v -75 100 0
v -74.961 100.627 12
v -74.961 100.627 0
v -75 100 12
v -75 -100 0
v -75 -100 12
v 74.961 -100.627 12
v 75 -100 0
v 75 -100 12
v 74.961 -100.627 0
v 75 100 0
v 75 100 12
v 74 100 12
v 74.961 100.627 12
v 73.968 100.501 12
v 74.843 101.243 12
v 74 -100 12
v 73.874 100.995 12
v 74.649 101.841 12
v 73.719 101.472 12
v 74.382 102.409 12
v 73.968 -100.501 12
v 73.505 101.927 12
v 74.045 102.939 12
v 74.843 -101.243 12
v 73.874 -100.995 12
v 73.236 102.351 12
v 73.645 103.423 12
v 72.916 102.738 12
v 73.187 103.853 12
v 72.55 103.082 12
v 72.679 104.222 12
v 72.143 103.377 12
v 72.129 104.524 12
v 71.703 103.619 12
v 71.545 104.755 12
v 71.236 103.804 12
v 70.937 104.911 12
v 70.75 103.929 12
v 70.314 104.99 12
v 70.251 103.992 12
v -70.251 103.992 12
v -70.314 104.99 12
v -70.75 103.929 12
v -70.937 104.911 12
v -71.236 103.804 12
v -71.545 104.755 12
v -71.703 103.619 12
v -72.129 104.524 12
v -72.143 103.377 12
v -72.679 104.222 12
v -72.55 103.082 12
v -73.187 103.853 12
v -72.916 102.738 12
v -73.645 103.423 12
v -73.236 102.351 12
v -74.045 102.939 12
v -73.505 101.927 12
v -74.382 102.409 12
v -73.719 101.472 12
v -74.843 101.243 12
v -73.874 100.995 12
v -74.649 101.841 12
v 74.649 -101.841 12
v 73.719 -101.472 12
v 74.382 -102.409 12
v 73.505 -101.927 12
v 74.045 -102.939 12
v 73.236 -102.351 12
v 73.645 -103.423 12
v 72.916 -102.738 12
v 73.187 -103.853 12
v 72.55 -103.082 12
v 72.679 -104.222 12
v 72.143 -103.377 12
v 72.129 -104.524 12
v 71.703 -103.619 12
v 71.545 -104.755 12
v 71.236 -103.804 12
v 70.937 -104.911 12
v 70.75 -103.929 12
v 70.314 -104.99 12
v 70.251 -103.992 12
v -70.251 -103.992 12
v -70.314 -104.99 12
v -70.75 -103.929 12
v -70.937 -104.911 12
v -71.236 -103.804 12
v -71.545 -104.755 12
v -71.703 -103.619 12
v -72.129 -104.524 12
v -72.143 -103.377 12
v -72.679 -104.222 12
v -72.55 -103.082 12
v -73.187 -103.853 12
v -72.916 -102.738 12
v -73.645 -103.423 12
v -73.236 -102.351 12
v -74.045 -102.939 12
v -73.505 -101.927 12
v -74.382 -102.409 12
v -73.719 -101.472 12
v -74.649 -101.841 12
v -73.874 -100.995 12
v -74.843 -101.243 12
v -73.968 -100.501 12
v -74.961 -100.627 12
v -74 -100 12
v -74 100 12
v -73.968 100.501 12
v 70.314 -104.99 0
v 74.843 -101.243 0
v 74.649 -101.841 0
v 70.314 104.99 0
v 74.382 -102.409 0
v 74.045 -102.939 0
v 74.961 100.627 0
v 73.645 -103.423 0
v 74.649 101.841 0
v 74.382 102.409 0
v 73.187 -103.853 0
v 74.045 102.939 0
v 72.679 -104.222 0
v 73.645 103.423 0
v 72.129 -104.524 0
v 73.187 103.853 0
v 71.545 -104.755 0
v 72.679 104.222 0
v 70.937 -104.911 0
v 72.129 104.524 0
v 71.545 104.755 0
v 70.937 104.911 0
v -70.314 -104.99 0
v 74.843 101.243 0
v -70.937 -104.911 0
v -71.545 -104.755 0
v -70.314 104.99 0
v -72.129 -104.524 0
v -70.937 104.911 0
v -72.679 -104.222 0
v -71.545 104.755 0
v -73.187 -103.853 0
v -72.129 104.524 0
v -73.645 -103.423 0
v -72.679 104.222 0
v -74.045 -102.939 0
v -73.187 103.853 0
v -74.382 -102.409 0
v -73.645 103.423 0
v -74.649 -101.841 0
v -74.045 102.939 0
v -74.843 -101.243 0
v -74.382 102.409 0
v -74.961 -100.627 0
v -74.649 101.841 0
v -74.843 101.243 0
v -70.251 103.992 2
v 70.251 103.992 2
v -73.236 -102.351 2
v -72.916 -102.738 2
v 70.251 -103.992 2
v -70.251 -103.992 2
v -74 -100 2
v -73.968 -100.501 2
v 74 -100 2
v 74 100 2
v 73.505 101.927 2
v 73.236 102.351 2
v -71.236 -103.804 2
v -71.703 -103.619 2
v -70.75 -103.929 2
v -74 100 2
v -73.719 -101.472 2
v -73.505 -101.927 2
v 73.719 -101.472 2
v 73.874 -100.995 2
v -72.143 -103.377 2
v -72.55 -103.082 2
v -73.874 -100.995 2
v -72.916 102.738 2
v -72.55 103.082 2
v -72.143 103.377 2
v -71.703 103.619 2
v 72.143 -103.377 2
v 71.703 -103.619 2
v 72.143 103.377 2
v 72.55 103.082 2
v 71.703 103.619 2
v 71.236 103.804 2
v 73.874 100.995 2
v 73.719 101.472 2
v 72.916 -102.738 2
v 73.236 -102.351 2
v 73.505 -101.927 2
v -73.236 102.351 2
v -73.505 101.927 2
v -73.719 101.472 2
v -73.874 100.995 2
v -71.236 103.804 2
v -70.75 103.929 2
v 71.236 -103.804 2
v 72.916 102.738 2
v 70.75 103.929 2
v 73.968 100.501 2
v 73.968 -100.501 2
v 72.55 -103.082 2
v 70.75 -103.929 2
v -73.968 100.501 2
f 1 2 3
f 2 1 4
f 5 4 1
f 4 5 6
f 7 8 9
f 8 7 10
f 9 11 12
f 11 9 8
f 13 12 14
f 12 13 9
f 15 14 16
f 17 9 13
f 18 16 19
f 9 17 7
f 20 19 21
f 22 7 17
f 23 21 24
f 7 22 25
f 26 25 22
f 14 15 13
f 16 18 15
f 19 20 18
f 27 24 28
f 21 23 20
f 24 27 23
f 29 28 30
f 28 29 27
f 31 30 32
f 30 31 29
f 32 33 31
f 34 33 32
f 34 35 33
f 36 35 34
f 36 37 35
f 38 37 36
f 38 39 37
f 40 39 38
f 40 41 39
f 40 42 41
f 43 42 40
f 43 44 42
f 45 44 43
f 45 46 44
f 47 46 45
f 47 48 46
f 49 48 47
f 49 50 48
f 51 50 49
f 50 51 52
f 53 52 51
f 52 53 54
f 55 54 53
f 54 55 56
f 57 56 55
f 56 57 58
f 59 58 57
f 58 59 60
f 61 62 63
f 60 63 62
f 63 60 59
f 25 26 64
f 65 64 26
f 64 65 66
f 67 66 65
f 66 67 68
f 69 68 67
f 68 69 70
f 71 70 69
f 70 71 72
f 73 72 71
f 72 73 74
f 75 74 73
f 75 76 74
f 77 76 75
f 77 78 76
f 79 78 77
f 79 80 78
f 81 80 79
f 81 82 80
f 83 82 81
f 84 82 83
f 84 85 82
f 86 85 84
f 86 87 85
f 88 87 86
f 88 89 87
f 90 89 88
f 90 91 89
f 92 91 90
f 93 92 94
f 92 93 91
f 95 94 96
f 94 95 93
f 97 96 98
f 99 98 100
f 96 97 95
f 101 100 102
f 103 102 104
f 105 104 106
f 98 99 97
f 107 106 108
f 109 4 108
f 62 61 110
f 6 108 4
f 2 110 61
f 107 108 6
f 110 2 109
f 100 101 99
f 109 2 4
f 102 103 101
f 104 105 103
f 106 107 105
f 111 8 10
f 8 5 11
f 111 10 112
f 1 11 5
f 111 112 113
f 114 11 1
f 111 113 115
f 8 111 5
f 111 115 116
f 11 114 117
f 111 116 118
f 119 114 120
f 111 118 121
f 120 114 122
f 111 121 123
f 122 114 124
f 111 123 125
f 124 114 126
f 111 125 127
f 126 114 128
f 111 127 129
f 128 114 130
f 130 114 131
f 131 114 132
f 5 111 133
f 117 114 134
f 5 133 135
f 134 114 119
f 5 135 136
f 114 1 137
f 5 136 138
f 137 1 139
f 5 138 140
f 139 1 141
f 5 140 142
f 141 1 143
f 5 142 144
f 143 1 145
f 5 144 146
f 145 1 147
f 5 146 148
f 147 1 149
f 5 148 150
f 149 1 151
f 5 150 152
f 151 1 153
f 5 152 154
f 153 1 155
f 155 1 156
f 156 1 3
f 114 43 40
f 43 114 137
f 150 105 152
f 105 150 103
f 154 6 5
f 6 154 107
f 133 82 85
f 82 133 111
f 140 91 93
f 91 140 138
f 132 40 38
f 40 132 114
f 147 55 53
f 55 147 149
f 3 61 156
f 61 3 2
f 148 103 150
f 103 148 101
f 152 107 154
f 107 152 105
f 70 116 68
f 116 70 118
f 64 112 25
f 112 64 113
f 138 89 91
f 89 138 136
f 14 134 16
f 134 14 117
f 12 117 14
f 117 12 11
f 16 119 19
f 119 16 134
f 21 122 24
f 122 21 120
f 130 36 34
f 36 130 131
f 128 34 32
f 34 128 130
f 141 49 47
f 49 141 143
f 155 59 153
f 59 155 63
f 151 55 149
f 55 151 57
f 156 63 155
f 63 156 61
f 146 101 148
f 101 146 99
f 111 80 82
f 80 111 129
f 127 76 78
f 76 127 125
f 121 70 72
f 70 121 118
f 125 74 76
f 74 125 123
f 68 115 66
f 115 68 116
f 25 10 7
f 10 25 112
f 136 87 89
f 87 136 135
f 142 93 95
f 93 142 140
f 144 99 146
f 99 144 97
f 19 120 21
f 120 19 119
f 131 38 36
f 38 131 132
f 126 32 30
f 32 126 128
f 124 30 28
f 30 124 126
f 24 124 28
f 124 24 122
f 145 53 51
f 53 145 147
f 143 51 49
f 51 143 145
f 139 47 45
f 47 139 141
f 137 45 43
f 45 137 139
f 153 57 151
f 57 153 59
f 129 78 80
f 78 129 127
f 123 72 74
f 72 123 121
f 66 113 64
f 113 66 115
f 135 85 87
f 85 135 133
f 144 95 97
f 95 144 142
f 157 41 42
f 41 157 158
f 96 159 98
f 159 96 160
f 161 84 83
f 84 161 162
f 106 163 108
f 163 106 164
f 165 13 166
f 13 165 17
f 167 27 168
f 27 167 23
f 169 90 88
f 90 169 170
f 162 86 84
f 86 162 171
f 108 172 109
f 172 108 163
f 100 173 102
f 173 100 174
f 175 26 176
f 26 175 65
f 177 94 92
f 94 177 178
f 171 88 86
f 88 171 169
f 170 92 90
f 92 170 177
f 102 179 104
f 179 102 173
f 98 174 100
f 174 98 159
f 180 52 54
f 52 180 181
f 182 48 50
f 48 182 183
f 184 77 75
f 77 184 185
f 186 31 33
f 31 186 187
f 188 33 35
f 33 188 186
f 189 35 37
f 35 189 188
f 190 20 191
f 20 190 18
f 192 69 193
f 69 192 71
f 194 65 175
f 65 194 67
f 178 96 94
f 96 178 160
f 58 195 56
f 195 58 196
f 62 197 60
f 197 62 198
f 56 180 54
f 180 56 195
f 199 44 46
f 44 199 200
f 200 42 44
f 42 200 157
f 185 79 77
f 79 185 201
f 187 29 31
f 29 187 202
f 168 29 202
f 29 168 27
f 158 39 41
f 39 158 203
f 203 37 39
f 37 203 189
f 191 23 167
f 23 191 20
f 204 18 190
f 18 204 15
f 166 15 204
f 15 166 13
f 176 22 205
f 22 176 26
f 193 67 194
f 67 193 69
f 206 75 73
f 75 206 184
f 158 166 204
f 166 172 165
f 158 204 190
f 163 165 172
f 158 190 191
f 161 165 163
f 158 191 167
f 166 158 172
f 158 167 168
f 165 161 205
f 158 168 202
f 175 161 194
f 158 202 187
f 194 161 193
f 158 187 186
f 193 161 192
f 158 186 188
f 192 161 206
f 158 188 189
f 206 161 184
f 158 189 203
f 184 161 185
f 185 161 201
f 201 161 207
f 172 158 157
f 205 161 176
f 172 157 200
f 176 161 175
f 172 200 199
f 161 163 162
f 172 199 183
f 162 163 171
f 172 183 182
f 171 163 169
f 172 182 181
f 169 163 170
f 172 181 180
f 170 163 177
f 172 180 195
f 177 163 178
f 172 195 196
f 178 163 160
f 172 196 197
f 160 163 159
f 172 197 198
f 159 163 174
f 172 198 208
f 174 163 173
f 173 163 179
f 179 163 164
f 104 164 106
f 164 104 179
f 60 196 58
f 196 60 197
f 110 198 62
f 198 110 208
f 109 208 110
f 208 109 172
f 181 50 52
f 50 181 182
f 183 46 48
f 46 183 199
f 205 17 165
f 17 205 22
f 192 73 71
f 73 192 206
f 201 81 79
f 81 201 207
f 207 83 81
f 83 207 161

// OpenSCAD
$fn = 50;


difference() {
	union() {
		hull() {
			translate(v = [-70.0000000000, 100.0000000000, 0]) {
				cylinder(h = 12, r = 5);
			}
			translate(v = [70.0000000000, 100.0000000000, 0]) {
				cylinder(h = 12, r = 5);
			}
			translate(v = [-70.0000000000, -100.0000000000, 0]) {
				cylinder(h = 12, r = 5);
			}
			translate(v = [70.0000000000, -100.0000000000, 0]) {
				cylinder(h = 12, r = 5);
			}
		}
	}
	union() {
		translate(v = [0, 0, 2]) {
			hull() {
				translate(v = [-70.0000000000, 100.0000000000, 0]) {
					cylinder(h = 10, r = 4);
				}
				translate(v = [70.0000000000, 100.0000000000, 0]) {
					cylinder(h = 10, r = 4);
				}
				translate(v = [-70.0000000000, -100.0000000000, 0]) {
					cylinder(h = 10, r = 4);
				}
				translate(v = [70.0000000000, -100.0000000000, 0]) {
					cylinder(h = 10, r = 4);
				}
			}
		}
	}
}
